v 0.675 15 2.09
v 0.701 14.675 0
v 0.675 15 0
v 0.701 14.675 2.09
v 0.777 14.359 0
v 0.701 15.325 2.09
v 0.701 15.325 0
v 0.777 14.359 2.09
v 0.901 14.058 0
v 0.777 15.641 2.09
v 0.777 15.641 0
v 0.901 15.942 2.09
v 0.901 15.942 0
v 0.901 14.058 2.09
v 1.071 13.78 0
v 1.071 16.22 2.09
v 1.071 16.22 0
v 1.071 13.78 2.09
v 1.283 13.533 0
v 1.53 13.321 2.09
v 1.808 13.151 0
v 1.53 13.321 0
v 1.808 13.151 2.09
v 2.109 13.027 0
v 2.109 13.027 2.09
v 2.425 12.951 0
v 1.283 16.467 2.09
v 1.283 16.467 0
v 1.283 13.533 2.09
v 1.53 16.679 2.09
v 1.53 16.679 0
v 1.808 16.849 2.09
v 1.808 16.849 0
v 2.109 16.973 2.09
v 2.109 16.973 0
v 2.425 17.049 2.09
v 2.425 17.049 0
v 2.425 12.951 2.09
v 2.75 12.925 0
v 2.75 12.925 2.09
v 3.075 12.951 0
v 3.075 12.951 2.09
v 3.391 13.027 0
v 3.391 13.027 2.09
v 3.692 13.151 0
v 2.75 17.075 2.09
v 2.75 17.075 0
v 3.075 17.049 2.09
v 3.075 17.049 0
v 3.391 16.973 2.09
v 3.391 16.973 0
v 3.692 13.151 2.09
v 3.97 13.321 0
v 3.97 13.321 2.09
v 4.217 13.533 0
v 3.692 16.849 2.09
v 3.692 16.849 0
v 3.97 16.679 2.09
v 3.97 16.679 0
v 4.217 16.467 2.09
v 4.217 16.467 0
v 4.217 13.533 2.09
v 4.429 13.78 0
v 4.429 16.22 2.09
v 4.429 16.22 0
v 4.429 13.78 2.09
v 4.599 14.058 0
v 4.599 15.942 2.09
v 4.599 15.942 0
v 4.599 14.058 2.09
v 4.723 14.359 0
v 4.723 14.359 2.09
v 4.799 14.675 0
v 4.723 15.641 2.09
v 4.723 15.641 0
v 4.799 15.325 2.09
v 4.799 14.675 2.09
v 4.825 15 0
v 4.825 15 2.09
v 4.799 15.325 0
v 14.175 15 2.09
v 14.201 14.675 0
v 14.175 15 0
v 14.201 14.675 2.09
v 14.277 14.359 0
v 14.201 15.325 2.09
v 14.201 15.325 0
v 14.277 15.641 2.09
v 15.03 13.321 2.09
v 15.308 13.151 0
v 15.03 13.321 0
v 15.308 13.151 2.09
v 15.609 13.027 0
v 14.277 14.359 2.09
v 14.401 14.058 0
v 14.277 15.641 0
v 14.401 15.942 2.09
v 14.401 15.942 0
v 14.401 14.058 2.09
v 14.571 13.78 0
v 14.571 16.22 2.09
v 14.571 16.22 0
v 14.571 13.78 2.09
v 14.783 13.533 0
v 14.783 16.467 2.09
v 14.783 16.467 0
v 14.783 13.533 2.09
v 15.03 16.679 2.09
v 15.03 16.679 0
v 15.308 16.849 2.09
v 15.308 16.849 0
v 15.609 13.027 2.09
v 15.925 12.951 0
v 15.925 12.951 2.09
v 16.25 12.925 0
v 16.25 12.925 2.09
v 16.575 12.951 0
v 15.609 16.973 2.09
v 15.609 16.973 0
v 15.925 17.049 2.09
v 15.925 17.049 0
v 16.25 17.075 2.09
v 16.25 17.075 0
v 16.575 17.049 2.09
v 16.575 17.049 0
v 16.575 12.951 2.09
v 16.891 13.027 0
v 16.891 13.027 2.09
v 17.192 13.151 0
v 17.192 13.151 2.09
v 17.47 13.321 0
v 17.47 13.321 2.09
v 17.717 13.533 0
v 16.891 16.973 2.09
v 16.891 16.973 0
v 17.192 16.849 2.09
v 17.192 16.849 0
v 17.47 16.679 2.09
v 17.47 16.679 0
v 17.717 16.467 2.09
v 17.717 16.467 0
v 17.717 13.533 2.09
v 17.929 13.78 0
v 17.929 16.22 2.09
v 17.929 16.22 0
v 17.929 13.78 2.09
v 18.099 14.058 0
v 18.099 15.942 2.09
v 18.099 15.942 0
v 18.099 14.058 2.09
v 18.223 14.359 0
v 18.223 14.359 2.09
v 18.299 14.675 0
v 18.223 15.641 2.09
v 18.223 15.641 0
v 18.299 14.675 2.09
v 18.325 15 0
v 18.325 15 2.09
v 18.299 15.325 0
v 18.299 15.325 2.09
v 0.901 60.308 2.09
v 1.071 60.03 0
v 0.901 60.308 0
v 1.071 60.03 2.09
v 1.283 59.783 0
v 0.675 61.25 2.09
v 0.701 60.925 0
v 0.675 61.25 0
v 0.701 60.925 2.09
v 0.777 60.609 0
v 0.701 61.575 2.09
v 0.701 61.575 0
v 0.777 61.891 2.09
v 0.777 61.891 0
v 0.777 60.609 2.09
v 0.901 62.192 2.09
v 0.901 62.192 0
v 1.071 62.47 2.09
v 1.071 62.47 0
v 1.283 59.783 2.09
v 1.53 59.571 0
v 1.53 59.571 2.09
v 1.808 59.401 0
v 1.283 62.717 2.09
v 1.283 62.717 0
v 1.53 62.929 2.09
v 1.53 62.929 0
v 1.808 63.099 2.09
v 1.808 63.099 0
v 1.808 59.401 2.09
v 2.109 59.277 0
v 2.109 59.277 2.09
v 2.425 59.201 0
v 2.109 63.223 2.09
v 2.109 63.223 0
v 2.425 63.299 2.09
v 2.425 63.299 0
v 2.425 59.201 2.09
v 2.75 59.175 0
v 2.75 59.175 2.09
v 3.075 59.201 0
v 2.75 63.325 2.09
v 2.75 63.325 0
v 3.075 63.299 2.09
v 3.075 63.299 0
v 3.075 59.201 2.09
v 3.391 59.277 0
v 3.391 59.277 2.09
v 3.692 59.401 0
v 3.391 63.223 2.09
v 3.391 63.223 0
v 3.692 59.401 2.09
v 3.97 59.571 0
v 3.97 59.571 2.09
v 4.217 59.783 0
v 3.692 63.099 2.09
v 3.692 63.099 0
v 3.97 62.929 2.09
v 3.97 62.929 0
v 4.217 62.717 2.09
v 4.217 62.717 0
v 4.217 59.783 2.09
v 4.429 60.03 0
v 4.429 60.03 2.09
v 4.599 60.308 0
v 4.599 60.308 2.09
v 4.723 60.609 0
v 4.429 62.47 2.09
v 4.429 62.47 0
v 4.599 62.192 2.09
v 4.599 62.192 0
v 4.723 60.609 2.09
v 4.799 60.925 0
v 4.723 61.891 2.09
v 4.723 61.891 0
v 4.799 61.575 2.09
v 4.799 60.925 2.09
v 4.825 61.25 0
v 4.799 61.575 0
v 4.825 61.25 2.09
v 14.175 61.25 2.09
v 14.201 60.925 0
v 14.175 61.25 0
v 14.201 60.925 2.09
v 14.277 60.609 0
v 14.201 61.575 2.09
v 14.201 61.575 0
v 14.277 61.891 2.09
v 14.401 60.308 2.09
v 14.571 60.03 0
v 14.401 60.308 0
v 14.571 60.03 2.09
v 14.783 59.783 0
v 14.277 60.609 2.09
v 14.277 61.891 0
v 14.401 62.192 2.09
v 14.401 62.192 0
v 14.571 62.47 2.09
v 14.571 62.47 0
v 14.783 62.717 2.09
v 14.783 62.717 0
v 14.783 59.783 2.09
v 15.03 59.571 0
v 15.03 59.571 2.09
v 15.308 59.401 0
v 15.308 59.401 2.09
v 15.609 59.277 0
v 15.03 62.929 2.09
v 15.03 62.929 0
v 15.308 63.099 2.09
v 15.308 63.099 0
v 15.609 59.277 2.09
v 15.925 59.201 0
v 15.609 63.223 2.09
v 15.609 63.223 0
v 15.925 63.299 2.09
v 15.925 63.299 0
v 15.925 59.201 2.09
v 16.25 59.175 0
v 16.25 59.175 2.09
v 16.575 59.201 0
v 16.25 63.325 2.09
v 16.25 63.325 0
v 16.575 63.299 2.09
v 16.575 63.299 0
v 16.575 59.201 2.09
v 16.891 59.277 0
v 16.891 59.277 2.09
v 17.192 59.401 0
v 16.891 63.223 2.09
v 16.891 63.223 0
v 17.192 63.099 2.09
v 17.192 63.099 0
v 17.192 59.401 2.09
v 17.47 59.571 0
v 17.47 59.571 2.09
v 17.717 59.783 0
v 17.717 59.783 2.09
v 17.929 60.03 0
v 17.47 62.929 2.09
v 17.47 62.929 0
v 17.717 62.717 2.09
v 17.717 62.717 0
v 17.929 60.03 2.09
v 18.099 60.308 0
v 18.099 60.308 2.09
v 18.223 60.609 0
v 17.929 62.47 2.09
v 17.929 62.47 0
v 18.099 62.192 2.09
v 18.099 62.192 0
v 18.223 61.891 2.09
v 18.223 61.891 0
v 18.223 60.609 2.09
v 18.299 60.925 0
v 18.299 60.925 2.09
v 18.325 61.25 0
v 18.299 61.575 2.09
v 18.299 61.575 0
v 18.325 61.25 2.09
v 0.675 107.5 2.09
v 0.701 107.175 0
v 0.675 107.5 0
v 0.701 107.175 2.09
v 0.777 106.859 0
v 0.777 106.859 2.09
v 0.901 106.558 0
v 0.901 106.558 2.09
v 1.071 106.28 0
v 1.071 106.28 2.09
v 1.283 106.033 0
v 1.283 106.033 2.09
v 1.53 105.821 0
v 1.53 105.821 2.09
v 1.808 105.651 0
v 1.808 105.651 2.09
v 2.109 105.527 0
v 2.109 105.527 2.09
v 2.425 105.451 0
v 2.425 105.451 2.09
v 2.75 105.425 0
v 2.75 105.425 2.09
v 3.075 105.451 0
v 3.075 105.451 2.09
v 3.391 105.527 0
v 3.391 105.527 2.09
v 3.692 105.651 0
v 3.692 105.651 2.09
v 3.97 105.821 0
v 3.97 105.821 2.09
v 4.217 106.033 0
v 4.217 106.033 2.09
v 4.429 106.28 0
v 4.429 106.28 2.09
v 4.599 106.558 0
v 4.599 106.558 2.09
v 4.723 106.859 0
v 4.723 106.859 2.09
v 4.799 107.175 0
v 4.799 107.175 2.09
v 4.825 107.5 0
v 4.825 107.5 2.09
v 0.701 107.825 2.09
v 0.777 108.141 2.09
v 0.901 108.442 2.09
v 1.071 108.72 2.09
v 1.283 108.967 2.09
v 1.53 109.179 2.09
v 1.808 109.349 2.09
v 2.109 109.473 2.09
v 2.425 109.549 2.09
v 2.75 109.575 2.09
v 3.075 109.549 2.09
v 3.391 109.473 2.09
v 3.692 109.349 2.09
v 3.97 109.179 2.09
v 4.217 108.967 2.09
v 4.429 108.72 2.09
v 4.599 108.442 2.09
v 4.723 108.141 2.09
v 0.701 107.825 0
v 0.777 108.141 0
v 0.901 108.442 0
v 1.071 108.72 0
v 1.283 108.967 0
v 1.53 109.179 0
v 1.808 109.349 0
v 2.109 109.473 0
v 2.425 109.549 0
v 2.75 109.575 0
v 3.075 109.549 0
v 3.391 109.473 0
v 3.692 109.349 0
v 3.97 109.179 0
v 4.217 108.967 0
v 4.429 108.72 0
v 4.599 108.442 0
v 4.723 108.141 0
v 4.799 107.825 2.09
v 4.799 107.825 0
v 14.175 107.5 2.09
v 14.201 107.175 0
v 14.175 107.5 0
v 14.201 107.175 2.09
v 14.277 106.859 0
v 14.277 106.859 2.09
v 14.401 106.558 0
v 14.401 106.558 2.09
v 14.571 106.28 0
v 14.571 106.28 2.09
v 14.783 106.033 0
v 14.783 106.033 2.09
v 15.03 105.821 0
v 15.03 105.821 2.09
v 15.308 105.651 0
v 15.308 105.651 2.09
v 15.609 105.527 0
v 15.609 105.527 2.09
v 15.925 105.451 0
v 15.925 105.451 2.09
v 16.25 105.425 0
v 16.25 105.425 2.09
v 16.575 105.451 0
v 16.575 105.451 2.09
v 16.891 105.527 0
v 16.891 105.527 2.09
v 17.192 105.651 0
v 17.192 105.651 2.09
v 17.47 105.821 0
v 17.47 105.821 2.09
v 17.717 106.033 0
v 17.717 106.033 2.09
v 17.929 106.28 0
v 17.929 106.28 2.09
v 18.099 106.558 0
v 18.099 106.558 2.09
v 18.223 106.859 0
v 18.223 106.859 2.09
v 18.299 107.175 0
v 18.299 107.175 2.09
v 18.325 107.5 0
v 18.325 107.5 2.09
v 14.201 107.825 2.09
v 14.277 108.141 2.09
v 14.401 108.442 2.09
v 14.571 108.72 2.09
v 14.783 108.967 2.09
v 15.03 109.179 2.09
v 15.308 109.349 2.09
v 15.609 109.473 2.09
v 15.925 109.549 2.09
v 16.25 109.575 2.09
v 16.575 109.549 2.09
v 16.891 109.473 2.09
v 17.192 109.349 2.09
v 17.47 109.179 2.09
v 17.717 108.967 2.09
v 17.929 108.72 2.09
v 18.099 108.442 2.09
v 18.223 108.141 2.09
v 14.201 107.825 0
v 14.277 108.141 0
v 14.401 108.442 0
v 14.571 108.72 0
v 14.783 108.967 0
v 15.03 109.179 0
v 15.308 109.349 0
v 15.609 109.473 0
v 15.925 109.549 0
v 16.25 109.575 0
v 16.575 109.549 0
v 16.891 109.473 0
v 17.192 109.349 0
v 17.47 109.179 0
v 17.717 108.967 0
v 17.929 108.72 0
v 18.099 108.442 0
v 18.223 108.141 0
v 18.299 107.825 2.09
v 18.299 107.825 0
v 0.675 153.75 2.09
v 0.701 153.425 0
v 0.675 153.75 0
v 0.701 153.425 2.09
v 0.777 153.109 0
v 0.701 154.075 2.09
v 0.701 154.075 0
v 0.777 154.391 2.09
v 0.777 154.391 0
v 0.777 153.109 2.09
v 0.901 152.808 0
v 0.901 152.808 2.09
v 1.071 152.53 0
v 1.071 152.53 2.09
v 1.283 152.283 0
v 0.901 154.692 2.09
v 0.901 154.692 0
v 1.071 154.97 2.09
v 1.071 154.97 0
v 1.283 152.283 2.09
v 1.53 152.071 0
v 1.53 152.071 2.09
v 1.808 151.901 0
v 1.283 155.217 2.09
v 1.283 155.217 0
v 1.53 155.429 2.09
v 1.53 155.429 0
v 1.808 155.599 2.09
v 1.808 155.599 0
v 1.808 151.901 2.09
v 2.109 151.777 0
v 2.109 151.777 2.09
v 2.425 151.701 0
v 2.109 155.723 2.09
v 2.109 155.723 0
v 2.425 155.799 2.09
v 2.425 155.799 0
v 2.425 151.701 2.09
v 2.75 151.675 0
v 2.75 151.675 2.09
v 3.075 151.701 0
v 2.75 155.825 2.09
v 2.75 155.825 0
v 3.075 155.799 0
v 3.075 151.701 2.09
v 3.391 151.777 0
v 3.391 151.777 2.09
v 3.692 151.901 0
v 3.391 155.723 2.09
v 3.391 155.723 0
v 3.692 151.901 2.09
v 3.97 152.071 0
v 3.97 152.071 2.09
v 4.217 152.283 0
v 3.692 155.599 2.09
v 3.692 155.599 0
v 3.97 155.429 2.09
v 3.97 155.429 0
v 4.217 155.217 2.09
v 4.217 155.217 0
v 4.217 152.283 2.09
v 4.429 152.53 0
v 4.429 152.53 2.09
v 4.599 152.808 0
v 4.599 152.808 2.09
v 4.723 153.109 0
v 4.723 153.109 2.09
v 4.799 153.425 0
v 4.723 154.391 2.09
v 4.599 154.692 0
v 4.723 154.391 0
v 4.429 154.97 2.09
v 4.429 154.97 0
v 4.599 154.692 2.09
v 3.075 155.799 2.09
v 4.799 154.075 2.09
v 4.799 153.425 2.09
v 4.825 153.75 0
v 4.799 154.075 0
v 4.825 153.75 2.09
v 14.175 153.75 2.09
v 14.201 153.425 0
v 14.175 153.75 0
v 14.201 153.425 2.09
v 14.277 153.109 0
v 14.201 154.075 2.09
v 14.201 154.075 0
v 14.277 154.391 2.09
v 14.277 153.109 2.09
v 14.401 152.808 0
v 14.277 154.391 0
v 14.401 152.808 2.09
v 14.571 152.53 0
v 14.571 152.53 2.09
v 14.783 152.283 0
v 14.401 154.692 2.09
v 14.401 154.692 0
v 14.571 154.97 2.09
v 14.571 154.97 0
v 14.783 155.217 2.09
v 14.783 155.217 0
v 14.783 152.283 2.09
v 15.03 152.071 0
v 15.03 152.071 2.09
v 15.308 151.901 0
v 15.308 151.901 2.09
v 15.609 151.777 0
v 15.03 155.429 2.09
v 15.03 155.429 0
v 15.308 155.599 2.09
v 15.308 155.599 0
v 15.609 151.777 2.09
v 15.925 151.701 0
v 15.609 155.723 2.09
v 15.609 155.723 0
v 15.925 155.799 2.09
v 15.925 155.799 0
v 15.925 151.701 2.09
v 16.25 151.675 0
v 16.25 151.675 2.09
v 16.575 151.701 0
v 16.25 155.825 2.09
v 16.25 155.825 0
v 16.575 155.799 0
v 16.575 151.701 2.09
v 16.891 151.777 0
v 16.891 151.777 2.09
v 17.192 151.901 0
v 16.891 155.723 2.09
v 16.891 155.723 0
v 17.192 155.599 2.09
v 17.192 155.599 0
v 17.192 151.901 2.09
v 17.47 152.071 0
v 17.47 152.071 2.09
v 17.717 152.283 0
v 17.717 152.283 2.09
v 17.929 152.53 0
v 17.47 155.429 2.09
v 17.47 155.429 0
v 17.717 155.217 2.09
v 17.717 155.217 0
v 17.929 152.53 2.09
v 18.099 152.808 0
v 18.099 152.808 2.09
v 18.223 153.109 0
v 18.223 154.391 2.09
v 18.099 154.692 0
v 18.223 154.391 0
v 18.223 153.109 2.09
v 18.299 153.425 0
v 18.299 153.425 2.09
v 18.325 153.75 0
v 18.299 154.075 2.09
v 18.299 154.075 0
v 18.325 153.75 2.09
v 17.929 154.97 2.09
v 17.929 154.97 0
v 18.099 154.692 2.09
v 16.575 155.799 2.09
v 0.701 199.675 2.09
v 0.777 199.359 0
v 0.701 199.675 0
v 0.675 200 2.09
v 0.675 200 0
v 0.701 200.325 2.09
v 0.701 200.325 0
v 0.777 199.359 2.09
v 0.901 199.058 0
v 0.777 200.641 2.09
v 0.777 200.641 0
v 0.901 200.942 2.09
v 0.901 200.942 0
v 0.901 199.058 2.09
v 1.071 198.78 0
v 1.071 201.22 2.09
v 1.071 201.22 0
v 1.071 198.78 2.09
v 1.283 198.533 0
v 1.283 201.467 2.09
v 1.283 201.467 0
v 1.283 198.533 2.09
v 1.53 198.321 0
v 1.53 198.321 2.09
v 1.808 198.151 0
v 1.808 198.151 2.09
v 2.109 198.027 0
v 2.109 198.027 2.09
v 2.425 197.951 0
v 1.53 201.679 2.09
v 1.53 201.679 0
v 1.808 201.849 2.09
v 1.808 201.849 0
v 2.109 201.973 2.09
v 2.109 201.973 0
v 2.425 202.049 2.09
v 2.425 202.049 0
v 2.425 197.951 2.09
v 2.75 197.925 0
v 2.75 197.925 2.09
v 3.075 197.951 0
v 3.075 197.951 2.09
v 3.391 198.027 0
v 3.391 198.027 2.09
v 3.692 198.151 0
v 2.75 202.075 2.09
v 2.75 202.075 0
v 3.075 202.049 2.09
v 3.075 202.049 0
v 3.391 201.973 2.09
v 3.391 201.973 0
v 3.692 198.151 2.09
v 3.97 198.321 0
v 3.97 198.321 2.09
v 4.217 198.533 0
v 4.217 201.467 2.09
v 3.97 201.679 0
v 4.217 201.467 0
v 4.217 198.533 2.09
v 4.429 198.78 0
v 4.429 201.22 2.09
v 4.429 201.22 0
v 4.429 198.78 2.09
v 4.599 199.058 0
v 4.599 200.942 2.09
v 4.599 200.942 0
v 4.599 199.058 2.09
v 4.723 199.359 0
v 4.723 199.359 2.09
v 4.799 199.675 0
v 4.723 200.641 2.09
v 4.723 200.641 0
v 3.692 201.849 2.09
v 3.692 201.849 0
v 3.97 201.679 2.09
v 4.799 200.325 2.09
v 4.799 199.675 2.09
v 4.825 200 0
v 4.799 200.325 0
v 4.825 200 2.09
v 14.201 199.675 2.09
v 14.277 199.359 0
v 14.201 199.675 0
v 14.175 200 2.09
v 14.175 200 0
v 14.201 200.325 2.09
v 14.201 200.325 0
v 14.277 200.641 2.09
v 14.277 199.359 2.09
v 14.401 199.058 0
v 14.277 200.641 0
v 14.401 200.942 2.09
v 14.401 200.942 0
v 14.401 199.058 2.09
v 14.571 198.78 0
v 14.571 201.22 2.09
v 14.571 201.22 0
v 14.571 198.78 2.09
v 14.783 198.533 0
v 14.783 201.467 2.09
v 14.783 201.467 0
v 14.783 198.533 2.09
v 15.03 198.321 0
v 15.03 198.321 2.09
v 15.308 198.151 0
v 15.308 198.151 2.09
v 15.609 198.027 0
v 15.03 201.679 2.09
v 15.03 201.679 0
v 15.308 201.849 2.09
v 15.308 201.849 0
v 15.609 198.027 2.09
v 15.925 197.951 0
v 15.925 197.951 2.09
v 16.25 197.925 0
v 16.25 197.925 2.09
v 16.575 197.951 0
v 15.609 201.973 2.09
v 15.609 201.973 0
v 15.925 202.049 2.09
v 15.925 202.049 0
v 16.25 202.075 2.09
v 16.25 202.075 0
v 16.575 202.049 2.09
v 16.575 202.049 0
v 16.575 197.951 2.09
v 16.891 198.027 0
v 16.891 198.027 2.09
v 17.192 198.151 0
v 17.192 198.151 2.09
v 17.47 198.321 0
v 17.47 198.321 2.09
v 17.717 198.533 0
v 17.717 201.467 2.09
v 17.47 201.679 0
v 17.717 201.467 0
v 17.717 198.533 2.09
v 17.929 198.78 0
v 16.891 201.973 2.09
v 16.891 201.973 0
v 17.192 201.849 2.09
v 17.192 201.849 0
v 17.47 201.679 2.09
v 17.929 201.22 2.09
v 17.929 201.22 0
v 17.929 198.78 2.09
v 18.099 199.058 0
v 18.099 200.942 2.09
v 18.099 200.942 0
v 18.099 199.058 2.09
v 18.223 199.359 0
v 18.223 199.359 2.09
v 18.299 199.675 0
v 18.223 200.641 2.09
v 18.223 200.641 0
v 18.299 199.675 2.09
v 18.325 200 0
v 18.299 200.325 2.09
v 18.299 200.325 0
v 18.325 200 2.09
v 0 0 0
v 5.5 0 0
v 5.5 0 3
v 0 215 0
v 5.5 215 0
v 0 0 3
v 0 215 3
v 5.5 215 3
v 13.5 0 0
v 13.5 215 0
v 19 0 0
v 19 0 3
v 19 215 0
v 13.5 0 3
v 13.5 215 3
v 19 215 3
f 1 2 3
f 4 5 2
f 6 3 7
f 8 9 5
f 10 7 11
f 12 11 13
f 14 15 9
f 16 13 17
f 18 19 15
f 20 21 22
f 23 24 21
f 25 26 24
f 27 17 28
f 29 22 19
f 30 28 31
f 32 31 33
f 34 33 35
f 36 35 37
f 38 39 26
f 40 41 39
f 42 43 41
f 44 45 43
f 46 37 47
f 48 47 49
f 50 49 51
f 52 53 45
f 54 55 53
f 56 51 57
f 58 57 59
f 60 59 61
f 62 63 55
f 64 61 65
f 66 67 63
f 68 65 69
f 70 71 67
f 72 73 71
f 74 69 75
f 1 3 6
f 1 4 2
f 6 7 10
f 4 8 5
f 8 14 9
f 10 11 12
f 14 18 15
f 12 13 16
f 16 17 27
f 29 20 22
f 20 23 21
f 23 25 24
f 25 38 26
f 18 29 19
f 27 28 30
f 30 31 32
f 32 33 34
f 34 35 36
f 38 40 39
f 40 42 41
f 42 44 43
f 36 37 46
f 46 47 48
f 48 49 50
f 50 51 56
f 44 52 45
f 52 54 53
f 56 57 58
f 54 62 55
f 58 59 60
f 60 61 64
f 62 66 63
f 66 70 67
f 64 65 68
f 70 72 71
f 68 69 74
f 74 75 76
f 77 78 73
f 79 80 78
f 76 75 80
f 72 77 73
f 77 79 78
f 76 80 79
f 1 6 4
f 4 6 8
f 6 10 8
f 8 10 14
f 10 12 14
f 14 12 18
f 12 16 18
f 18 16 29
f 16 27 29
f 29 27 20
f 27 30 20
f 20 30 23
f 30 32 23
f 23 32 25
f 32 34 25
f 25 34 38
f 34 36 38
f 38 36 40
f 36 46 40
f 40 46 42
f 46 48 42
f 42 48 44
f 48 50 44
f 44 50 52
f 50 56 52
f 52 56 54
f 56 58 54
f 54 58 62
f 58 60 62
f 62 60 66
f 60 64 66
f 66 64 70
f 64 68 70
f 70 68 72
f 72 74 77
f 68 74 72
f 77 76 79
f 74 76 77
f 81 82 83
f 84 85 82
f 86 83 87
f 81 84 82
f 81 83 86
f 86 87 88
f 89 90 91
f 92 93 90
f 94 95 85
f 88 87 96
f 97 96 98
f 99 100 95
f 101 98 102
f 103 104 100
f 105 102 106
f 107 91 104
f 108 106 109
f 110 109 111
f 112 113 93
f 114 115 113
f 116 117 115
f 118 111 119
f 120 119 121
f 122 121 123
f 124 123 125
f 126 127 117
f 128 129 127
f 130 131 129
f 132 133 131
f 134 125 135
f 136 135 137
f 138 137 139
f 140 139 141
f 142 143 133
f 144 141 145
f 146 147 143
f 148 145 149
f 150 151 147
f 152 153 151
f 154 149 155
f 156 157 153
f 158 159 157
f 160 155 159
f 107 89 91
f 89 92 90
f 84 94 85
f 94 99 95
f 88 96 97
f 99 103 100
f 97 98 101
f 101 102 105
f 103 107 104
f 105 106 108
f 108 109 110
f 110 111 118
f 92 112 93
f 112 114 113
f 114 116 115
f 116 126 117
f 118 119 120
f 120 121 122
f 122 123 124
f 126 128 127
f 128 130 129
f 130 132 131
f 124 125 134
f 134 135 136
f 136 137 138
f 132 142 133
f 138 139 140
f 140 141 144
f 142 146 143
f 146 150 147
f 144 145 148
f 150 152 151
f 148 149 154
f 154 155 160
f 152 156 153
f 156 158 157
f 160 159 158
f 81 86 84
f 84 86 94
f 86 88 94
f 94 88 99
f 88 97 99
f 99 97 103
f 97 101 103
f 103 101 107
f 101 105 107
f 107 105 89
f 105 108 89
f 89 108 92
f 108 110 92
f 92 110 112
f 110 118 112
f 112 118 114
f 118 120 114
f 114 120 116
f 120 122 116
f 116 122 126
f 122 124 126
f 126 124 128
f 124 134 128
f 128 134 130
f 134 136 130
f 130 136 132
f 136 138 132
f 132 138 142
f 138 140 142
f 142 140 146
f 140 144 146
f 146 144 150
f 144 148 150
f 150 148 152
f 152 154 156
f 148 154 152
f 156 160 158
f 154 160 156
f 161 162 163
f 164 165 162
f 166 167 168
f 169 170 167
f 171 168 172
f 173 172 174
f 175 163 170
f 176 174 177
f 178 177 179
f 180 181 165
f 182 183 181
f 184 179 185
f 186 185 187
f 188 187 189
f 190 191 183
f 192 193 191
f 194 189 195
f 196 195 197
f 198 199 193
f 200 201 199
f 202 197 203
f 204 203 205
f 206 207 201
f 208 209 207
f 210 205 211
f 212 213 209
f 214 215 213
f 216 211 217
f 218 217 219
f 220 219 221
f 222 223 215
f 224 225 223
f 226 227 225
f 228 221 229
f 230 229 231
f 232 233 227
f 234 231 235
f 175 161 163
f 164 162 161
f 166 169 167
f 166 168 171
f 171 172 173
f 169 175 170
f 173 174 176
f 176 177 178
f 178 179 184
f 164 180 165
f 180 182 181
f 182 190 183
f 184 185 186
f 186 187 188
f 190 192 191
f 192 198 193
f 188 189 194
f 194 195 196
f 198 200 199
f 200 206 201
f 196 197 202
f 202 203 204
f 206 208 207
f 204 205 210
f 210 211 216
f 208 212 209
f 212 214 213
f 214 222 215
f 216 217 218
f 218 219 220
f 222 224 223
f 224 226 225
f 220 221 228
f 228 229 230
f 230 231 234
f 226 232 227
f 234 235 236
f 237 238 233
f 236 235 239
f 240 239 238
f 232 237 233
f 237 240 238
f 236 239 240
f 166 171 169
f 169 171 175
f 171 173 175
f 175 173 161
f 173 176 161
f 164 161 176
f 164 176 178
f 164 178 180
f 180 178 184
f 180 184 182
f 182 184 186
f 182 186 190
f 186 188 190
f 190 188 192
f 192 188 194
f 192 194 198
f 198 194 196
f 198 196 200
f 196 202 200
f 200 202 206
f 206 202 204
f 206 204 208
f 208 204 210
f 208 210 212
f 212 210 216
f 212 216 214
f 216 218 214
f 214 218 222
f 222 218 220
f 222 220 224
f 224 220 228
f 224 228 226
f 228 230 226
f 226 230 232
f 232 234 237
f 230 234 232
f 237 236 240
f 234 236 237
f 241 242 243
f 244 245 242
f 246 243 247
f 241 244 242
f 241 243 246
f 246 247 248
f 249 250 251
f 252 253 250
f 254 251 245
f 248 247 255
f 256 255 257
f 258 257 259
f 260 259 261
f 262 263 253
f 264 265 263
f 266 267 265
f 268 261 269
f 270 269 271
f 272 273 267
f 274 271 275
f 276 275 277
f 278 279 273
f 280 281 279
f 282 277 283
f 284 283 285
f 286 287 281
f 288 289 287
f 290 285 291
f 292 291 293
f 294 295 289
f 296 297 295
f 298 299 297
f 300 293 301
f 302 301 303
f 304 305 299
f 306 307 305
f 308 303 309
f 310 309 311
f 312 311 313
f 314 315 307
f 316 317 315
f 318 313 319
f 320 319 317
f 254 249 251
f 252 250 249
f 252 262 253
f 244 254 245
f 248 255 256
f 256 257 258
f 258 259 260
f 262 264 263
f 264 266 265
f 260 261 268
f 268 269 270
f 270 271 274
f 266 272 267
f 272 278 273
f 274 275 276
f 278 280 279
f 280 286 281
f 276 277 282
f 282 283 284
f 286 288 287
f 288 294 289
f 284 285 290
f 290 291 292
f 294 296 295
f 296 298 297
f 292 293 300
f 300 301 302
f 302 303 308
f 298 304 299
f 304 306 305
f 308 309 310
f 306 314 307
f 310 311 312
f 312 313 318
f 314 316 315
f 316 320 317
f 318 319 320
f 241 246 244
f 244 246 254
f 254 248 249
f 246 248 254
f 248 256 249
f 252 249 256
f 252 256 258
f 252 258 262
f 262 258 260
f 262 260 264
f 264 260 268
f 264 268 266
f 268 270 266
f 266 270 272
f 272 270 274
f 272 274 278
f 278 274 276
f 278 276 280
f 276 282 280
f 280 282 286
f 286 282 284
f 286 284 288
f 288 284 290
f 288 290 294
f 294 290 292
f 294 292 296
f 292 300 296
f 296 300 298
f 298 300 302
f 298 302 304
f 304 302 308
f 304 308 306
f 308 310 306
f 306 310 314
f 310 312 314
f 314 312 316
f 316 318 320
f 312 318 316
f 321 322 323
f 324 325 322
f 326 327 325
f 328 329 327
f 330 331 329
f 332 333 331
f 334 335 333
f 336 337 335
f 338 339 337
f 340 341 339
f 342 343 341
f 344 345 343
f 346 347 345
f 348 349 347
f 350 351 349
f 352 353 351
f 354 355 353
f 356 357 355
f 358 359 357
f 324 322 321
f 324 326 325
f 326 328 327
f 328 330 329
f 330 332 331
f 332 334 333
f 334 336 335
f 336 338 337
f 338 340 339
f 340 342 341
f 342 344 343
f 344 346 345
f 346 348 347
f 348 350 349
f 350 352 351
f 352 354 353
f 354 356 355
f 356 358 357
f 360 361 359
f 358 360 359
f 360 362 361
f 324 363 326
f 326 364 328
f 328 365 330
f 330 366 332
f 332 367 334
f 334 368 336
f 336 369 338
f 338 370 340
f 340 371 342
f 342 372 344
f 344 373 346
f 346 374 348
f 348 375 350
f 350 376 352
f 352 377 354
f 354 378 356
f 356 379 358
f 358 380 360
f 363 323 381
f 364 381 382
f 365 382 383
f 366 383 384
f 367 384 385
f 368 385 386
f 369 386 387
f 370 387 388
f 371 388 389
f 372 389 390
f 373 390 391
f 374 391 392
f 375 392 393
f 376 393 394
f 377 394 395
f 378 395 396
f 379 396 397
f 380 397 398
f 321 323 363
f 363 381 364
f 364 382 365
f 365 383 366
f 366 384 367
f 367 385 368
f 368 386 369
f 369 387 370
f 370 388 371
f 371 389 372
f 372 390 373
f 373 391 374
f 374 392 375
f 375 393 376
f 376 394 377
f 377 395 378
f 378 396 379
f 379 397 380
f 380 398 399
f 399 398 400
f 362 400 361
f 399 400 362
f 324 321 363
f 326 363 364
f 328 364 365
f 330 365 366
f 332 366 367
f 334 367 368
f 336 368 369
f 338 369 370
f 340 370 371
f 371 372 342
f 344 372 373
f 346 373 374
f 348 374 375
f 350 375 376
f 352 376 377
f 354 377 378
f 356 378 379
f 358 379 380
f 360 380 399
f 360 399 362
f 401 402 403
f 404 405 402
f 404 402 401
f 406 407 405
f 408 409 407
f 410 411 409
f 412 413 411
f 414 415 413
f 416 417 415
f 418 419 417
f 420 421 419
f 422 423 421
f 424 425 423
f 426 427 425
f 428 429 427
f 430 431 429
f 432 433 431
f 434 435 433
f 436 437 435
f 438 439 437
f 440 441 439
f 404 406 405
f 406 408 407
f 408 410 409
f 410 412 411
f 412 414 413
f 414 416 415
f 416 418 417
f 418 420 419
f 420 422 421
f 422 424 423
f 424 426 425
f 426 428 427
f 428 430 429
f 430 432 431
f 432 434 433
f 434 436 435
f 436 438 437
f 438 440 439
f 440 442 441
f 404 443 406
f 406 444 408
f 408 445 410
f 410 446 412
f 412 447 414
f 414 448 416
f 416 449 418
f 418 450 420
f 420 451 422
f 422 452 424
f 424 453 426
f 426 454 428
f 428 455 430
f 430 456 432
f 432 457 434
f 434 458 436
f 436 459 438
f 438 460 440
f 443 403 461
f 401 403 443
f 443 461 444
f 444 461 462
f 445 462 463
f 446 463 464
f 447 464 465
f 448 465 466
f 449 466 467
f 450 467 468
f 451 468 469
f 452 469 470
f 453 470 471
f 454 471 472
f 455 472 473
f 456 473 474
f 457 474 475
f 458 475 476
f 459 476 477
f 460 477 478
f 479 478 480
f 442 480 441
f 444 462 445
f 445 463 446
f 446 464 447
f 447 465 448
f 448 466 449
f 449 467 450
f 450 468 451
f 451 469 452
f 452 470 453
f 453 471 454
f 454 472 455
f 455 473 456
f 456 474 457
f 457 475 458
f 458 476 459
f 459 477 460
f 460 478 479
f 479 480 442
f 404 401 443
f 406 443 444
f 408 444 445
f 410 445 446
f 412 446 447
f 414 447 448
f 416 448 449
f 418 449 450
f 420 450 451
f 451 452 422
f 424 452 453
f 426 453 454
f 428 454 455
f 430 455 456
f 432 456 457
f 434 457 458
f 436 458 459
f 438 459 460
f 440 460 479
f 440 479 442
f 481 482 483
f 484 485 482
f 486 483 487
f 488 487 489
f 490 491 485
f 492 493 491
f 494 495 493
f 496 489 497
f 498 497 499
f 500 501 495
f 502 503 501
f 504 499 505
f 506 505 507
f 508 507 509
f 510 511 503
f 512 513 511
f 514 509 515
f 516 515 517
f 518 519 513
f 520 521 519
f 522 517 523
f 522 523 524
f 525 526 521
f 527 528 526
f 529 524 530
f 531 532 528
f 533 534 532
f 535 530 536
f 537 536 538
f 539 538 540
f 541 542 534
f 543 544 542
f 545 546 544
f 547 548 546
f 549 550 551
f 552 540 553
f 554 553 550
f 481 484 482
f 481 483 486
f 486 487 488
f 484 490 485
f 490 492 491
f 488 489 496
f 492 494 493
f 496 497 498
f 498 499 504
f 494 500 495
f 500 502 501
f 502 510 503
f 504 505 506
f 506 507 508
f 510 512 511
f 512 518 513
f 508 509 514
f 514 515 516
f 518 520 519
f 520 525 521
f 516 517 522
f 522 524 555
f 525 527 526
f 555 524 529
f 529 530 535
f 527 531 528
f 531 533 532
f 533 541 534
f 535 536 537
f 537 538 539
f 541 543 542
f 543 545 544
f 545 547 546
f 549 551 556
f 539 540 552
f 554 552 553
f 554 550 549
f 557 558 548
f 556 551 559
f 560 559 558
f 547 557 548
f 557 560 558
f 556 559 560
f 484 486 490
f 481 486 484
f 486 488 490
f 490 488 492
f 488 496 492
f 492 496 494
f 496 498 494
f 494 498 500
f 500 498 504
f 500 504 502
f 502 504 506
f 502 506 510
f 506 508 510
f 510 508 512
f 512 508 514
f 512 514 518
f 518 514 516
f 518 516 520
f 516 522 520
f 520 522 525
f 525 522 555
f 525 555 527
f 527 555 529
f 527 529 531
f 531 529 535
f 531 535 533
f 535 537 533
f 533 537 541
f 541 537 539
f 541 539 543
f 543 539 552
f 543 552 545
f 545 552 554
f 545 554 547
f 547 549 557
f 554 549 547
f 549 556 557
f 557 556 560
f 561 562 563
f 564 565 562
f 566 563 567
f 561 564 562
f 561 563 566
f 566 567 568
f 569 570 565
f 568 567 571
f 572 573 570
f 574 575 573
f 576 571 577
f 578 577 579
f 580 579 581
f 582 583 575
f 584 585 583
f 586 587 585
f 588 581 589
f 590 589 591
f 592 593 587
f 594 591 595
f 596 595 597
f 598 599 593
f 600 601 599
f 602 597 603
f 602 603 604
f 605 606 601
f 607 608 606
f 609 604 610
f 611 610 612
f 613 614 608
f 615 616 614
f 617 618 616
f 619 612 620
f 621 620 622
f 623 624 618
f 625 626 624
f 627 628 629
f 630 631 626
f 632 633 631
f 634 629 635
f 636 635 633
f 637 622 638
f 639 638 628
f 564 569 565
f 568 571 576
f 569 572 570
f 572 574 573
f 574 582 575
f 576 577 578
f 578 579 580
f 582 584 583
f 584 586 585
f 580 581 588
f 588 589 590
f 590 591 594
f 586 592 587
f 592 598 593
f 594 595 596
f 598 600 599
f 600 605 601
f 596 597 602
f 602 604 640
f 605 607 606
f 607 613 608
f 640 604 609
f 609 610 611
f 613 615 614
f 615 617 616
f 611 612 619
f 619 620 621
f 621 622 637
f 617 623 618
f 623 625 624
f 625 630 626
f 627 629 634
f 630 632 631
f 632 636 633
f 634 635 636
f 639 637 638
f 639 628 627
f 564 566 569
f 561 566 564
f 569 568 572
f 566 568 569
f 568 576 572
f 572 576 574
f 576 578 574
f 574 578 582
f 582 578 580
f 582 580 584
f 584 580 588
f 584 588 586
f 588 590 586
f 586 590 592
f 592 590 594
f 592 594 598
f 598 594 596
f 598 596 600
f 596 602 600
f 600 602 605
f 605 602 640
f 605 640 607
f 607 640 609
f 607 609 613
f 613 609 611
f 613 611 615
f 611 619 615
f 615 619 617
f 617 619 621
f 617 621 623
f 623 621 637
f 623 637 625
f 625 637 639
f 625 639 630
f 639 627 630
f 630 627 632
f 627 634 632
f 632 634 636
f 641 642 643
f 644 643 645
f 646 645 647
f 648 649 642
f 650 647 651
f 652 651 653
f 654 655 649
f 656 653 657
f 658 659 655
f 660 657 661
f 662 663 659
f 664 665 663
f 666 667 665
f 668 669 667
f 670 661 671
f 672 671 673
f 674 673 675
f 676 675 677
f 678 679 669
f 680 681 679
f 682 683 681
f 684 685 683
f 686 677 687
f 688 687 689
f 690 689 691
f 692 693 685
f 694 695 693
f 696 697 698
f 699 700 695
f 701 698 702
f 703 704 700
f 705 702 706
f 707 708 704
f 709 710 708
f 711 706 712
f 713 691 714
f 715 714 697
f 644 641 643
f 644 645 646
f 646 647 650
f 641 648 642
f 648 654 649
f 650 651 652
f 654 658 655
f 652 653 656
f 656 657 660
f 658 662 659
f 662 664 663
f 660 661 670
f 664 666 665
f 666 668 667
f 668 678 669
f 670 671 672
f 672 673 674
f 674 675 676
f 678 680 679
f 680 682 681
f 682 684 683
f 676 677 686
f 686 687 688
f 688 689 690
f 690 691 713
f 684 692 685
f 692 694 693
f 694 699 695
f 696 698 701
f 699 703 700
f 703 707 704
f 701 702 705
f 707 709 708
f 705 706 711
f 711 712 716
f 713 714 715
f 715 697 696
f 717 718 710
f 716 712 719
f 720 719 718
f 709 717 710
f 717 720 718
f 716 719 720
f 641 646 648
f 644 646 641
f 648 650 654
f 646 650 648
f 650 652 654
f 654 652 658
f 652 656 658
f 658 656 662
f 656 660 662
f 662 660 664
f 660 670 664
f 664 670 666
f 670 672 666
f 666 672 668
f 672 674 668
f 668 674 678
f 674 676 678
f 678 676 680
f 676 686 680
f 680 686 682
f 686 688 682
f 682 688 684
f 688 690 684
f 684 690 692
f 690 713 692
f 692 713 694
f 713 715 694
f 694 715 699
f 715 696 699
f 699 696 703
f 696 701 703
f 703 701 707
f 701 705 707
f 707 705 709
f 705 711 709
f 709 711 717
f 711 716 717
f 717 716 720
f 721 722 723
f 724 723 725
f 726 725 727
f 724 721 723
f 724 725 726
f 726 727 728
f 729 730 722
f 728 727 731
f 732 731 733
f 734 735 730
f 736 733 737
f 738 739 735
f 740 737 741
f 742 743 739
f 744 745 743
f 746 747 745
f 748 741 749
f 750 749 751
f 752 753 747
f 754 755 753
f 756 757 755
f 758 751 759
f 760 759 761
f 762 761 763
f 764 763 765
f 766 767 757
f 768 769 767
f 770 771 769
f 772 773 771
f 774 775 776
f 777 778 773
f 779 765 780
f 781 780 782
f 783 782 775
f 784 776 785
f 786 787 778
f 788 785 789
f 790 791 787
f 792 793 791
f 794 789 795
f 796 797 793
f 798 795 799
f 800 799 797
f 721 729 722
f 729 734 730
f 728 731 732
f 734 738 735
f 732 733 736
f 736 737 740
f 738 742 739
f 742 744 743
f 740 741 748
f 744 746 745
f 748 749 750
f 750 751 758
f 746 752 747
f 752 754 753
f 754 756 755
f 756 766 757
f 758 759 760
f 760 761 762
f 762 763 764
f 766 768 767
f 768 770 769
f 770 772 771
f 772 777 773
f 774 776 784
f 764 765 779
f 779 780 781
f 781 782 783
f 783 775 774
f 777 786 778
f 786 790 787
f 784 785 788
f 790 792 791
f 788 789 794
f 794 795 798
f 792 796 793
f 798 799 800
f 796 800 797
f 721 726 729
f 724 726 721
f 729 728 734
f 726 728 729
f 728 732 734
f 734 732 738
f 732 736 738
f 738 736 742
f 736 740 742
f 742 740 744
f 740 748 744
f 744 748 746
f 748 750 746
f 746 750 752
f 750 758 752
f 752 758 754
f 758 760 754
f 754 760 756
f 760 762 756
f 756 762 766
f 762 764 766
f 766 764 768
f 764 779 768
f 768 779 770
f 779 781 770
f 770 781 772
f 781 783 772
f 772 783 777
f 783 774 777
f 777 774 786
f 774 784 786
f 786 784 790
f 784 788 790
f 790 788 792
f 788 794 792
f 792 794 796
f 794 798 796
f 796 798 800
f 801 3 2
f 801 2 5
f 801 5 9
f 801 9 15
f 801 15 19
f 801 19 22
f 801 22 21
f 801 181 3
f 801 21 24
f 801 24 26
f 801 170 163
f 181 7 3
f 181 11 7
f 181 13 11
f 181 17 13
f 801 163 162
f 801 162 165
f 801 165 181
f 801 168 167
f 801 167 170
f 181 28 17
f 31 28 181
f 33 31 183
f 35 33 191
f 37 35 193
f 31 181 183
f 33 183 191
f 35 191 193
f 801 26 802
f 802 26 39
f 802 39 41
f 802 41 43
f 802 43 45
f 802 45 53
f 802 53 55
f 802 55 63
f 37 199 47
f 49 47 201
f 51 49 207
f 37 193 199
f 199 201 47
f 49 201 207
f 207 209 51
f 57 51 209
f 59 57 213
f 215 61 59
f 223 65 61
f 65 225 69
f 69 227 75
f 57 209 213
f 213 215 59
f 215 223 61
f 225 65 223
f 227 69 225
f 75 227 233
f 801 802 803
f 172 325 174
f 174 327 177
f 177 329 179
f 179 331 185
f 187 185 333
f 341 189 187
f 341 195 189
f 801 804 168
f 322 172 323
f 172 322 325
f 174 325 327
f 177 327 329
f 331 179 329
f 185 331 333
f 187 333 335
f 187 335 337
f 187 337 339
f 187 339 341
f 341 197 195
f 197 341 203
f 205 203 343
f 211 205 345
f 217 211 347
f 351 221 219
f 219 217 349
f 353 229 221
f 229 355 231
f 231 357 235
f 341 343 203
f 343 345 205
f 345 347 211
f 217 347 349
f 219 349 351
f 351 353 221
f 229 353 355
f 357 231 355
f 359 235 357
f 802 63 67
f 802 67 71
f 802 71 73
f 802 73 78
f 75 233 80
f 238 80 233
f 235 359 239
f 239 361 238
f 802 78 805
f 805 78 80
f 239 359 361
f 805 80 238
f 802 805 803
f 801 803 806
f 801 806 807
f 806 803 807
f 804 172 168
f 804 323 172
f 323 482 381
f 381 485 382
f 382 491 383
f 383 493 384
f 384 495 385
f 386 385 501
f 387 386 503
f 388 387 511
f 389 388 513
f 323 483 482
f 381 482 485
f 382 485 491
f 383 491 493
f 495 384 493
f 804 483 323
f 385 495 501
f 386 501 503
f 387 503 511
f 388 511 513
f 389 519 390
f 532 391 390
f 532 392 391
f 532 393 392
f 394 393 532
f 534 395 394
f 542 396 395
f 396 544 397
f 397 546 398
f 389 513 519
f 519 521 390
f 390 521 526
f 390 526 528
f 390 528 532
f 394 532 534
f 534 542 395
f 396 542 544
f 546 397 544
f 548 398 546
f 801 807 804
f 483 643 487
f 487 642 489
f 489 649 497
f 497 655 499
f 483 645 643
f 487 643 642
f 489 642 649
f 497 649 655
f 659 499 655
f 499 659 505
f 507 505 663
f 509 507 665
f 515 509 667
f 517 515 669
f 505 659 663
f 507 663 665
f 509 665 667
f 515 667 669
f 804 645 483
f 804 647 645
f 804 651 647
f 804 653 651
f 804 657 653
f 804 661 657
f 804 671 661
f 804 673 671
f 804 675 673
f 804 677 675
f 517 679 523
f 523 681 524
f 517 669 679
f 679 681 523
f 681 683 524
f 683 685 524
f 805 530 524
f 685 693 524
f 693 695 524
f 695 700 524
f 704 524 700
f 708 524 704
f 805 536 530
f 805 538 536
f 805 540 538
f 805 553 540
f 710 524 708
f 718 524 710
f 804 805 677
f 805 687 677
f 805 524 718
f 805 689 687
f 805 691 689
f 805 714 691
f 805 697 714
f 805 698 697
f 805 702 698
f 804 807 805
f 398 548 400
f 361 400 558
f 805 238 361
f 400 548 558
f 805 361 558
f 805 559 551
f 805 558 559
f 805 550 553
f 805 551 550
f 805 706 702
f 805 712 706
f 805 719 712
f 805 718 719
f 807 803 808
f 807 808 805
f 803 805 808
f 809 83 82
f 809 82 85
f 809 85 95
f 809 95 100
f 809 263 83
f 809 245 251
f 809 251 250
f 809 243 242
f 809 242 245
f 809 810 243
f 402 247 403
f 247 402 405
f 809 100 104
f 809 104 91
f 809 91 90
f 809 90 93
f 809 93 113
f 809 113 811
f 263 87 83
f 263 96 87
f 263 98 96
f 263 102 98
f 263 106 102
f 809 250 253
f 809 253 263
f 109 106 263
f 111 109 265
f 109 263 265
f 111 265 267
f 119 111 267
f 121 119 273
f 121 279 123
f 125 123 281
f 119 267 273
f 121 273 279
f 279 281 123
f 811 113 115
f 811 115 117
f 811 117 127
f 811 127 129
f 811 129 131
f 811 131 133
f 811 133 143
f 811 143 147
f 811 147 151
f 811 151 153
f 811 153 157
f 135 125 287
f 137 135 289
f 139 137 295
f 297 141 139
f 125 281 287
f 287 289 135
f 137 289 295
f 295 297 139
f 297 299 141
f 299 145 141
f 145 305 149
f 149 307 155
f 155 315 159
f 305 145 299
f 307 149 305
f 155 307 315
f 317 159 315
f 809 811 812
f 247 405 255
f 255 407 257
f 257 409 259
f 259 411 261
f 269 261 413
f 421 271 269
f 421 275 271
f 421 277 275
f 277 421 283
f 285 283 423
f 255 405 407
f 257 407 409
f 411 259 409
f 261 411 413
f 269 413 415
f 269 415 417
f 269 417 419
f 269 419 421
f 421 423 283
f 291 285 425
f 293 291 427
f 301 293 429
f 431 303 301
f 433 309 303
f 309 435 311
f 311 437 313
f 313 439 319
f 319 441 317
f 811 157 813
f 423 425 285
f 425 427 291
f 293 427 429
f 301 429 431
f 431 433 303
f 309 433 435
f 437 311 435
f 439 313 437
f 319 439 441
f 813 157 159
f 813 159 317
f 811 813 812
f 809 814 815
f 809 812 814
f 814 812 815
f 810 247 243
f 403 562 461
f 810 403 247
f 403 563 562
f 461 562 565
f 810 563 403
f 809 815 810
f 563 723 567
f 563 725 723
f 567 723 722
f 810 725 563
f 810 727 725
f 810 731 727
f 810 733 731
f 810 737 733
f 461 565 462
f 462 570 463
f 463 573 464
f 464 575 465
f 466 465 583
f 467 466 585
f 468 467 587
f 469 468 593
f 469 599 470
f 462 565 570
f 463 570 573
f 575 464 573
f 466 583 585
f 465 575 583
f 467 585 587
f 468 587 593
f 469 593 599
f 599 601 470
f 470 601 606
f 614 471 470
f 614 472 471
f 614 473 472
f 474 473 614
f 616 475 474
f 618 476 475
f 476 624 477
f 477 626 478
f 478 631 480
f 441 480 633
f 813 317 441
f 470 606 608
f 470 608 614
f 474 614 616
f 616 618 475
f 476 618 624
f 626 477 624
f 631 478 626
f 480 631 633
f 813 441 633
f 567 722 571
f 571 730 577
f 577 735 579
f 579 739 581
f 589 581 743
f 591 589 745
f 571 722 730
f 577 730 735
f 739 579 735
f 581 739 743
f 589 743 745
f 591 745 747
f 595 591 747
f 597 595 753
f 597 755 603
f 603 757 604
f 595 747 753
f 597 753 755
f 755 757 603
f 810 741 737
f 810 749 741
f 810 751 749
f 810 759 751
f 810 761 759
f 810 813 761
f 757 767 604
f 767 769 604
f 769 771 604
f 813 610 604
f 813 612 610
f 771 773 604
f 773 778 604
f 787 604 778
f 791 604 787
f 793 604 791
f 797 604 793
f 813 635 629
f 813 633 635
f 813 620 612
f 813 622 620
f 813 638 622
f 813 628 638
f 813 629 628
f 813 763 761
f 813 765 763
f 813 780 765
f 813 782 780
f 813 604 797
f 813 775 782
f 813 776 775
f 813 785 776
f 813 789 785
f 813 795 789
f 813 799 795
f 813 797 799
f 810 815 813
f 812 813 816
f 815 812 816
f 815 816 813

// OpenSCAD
// Führungsschienen für die Trägerplatte (Handschrift-Plotter, A4 "Weg A") – mit Magneten
//
// Zwei gleiche Schienen, links und rechts auf den Rand des Druckbetts gelegt. Sie halten mit
// Magneten (Nutzer will nicht kleben). Voraussetzung: die Druckplatte zieht Magnete an.
// Die Trägerplatte (218 mm breit) läuft dazwischen wie ein Schlitten: nur vor/zurück (Y),
// kein Drehen, kein seitliches Rutschen.
//
// Bett 230 mm breit → Kanal 219 mm (0,5 mm Luft je Seite) → je Schiene 5,5 mm.
// Querschnitt: einfacher Riegel 5,5 × 3 mm (höher als die 2 mm dicke Platte).
// Magnete: Scheiben Ø 4 × 2 mm (Neodym), von unten in Taschen gedrückt (Presssitz, kein Kleber).
//   Taschen-Ø = magnet_d + magnet_spiel; zu locker → magnet_spiel kleiner, zu stramm → größer.
//
// Druck: beide Schienen in einer Datei, flach (Taschen zeigen nach unten aufs Druckbett),
//        PLA, 0,2 mm, keine Stützen. Danach Magnete von unten eindrücken – alle mit DERSELBEN
//        Seite nach oben (sonst egal, sie halten am Stahl der Druckplatte, nicht aneinander).

bett_breite   = 230;
platte_breite = 218;
luft          = 0.5;
laenge        = 215;     // passt gerade auf das 220er Druckbett
hoehe         = 3.0;     // > Plattendicke 2 mm

magnet_d      = 4;
magnet_h      = 2;
magnet_spiel  = 0.15;    // Presssitz
magnet_n      = 5;       // pro Schiene

schiene_b = (bett_breite - platte_breite - 2 * luft) / 2;   // = 5,5 mm

$fn = 40;

module schiene() {
    difference() {
        cube([schiene_b, laenge, hoehe]);
        for (i = [0 : magnet_n - 1])
            translate([schiene_b / 2, 15 + i * (laenge - 30) / (magnet_n - 1), -0.01])
                cylinder(d = magnet_d + magnet_spiel, h = magnet_h + 0.1);
    }
}

schiene();
translate([schiene_b + 8, 0, 0]) schiene();
echo(str("Schienenbreite: ", schiene_b, " mm, Magnete pro Schiene: ", magnet_n, " (Ø ", magnet_d, " × ", magnet_h, ")"));
